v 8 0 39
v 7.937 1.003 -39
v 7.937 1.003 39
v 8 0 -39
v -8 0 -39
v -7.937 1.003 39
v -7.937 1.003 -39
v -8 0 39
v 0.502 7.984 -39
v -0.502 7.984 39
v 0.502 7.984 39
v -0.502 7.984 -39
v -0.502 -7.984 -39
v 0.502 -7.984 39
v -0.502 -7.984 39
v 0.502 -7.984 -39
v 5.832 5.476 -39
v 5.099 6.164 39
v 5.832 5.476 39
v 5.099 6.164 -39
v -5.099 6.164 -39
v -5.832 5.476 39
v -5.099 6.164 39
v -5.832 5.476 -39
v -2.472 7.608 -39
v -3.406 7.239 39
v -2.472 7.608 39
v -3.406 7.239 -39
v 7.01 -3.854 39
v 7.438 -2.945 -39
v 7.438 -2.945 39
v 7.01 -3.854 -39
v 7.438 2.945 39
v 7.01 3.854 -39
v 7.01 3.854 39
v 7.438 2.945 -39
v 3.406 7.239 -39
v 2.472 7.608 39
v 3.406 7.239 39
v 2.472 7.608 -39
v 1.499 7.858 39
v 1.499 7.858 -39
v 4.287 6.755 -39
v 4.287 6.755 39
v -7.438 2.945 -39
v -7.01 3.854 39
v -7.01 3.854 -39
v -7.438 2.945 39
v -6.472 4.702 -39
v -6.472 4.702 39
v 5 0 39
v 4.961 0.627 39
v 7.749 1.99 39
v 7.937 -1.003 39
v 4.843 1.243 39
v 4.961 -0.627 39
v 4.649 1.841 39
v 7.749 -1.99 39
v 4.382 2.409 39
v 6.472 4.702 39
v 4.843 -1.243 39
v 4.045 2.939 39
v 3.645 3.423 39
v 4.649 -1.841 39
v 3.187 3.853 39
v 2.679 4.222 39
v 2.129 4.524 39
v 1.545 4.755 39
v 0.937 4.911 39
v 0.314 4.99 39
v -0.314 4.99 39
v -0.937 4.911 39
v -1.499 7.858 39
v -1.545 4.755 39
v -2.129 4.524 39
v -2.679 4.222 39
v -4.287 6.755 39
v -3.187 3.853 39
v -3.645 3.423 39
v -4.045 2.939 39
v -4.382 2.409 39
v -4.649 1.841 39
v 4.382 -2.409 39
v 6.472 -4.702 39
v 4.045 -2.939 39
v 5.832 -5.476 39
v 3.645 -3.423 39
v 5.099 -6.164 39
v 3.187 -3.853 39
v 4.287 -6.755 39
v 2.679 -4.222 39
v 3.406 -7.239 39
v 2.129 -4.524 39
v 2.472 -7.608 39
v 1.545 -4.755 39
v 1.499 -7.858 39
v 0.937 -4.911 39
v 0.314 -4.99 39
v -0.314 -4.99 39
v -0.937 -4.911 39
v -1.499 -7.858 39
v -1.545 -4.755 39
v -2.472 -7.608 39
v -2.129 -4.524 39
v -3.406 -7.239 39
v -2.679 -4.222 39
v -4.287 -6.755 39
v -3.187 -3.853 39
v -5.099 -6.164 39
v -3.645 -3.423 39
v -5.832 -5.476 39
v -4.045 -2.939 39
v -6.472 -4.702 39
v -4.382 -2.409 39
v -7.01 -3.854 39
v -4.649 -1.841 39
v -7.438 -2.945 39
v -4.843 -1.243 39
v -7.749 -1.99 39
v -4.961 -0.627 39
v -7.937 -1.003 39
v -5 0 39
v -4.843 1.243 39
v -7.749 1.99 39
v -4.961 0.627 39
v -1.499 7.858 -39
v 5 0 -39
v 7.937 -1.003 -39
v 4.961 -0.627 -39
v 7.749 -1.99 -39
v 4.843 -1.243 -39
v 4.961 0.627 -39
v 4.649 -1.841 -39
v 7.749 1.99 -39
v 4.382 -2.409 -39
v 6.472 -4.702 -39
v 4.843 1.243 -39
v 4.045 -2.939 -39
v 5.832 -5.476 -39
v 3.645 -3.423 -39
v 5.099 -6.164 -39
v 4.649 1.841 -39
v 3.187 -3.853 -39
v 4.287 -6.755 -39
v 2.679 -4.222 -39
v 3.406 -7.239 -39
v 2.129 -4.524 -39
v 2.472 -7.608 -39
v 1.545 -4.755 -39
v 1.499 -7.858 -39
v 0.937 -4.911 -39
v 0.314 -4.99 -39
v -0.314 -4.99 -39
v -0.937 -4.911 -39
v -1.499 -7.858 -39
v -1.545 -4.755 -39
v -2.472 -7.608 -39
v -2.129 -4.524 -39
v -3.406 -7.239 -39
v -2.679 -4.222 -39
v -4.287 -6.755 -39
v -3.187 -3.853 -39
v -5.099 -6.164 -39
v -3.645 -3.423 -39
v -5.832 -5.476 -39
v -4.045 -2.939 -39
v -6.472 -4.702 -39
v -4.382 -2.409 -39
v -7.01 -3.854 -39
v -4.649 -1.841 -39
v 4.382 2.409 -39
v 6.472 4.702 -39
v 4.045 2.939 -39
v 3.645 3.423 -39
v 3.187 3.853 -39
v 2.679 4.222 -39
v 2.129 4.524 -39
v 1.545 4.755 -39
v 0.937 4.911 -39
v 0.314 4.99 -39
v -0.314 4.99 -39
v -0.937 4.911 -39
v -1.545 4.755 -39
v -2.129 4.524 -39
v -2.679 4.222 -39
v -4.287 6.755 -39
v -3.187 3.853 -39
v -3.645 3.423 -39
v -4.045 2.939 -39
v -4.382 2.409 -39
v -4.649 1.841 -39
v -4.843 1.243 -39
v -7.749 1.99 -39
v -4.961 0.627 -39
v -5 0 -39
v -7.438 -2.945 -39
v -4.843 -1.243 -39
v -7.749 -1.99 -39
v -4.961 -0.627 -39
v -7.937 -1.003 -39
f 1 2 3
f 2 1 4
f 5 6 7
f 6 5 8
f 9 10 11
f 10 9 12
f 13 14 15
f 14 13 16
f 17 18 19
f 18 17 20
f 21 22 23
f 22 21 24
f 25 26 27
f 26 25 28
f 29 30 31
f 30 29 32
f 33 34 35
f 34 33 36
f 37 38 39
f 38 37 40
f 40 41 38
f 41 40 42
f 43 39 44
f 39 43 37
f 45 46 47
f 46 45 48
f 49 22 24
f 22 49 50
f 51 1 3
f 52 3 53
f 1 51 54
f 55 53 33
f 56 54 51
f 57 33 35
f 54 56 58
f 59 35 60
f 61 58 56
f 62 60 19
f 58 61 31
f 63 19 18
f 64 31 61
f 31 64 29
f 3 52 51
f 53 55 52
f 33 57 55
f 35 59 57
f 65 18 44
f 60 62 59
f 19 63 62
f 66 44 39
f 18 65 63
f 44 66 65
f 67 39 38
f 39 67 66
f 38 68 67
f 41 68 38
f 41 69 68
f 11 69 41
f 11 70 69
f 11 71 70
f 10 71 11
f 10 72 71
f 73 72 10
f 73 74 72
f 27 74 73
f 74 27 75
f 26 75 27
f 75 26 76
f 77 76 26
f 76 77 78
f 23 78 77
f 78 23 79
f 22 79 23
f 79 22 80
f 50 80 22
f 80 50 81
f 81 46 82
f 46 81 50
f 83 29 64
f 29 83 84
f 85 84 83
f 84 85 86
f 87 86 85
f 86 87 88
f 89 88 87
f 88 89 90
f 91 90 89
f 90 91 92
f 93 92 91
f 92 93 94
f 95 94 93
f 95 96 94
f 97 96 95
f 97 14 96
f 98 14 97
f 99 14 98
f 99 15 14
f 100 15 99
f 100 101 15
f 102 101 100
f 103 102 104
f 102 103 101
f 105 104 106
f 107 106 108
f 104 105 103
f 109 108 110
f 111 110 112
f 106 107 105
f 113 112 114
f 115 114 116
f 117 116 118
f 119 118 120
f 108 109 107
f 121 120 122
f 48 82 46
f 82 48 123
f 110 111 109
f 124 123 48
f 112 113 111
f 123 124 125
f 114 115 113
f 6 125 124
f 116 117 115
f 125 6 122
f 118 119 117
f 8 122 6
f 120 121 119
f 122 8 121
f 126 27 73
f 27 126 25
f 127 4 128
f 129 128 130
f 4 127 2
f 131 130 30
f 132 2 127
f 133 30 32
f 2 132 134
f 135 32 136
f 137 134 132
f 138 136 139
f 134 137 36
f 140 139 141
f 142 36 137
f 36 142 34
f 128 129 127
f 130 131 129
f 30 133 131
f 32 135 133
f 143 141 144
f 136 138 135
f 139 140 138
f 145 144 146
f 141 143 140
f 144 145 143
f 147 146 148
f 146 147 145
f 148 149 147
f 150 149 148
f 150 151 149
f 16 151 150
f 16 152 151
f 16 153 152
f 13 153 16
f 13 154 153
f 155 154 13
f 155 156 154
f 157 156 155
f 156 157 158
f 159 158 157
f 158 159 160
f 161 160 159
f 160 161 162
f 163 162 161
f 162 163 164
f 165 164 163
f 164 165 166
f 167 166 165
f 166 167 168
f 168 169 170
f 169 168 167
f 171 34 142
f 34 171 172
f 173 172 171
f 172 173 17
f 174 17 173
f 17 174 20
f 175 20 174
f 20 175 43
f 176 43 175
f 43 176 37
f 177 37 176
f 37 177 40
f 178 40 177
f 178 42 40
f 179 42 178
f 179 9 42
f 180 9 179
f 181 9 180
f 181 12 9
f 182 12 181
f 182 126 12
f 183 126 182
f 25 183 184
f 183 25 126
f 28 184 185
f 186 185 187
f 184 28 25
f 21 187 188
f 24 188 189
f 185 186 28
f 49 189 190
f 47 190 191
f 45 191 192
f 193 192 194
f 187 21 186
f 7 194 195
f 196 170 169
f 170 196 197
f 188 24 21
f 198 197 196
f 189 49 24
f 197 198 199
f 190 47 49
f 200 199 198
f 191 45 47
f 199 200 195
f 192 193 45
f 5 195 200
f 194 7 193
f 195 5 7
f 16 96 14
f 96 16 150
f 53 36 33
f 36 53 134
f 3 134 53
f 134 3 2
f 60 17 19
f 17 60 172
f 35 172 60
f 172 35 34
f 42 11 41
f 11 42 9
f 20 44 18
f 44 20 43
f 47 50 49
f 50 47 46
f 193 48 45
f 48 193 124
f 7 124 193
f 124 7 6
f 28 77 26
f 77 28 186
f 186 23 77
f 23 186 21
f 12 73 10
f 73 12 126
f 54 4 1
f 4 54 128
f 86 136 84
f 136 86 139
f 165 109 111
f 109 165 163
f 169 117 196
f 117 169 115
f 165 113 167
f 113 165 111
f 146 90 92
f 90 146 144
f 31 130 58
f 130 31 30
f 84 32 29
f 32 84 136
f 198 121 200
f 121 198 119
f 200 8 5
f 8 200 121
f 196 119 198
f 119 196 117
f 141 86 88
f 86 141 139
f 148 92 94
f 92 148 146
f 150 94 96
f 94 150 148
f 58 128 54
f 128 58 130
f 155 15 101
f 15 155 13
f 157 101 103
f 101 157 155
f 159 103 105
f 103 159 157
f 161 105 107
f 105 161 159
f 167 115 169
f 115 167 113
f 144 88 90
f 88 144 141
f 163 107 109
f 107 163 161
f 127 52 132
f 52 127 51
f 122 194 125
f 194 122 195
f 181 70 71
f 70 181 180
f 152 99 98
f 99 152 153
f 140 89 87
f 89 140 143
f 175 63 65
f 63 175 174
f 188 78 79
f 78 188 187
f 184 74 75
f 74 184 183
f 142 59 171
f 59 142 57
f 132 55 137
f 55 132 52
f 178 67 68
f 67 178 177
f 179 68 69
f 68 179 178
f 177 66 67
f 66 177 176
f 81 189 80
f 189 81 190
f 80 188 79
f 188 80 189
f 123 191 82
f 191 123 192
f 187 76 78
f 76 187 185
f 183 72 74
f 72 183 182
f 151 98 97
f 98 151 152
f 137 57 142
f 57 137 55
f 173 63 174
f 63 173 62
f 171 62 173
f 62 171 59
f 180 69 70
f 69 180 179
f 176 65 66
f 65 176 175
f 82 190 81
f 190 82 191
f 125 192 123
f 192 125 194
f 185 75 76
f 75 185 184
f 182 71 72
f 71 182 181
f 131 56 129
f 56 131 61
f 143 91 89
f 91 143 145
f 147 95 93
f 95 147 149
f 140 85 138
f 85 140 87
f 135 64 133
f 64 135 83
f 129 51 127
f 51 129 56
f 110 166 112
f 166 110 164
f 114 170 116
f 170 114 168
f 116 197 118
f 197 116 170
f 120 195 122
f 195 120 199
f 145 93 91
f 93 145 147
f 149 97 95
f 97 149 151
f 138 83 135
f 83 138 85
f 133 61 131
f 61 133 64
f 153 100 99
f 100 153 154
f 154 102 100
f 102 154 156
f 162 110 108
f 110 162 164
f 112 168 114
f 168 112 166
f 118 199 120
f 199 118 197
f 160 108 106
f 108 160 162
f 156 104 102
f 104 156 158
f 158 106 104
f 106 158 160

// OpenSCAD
$fn = 50;


difference() {
	union() {
		translate(v = [0, 0, -39.0000000000]) {
			cylinder(h = 78, r = 8.0000000000);
		}
	}
	union() {
		translate(v = [0, 0, -100.0000000000]) {
			cylinder(h = 200, r = 5.0000000000);
		}
	}
}
